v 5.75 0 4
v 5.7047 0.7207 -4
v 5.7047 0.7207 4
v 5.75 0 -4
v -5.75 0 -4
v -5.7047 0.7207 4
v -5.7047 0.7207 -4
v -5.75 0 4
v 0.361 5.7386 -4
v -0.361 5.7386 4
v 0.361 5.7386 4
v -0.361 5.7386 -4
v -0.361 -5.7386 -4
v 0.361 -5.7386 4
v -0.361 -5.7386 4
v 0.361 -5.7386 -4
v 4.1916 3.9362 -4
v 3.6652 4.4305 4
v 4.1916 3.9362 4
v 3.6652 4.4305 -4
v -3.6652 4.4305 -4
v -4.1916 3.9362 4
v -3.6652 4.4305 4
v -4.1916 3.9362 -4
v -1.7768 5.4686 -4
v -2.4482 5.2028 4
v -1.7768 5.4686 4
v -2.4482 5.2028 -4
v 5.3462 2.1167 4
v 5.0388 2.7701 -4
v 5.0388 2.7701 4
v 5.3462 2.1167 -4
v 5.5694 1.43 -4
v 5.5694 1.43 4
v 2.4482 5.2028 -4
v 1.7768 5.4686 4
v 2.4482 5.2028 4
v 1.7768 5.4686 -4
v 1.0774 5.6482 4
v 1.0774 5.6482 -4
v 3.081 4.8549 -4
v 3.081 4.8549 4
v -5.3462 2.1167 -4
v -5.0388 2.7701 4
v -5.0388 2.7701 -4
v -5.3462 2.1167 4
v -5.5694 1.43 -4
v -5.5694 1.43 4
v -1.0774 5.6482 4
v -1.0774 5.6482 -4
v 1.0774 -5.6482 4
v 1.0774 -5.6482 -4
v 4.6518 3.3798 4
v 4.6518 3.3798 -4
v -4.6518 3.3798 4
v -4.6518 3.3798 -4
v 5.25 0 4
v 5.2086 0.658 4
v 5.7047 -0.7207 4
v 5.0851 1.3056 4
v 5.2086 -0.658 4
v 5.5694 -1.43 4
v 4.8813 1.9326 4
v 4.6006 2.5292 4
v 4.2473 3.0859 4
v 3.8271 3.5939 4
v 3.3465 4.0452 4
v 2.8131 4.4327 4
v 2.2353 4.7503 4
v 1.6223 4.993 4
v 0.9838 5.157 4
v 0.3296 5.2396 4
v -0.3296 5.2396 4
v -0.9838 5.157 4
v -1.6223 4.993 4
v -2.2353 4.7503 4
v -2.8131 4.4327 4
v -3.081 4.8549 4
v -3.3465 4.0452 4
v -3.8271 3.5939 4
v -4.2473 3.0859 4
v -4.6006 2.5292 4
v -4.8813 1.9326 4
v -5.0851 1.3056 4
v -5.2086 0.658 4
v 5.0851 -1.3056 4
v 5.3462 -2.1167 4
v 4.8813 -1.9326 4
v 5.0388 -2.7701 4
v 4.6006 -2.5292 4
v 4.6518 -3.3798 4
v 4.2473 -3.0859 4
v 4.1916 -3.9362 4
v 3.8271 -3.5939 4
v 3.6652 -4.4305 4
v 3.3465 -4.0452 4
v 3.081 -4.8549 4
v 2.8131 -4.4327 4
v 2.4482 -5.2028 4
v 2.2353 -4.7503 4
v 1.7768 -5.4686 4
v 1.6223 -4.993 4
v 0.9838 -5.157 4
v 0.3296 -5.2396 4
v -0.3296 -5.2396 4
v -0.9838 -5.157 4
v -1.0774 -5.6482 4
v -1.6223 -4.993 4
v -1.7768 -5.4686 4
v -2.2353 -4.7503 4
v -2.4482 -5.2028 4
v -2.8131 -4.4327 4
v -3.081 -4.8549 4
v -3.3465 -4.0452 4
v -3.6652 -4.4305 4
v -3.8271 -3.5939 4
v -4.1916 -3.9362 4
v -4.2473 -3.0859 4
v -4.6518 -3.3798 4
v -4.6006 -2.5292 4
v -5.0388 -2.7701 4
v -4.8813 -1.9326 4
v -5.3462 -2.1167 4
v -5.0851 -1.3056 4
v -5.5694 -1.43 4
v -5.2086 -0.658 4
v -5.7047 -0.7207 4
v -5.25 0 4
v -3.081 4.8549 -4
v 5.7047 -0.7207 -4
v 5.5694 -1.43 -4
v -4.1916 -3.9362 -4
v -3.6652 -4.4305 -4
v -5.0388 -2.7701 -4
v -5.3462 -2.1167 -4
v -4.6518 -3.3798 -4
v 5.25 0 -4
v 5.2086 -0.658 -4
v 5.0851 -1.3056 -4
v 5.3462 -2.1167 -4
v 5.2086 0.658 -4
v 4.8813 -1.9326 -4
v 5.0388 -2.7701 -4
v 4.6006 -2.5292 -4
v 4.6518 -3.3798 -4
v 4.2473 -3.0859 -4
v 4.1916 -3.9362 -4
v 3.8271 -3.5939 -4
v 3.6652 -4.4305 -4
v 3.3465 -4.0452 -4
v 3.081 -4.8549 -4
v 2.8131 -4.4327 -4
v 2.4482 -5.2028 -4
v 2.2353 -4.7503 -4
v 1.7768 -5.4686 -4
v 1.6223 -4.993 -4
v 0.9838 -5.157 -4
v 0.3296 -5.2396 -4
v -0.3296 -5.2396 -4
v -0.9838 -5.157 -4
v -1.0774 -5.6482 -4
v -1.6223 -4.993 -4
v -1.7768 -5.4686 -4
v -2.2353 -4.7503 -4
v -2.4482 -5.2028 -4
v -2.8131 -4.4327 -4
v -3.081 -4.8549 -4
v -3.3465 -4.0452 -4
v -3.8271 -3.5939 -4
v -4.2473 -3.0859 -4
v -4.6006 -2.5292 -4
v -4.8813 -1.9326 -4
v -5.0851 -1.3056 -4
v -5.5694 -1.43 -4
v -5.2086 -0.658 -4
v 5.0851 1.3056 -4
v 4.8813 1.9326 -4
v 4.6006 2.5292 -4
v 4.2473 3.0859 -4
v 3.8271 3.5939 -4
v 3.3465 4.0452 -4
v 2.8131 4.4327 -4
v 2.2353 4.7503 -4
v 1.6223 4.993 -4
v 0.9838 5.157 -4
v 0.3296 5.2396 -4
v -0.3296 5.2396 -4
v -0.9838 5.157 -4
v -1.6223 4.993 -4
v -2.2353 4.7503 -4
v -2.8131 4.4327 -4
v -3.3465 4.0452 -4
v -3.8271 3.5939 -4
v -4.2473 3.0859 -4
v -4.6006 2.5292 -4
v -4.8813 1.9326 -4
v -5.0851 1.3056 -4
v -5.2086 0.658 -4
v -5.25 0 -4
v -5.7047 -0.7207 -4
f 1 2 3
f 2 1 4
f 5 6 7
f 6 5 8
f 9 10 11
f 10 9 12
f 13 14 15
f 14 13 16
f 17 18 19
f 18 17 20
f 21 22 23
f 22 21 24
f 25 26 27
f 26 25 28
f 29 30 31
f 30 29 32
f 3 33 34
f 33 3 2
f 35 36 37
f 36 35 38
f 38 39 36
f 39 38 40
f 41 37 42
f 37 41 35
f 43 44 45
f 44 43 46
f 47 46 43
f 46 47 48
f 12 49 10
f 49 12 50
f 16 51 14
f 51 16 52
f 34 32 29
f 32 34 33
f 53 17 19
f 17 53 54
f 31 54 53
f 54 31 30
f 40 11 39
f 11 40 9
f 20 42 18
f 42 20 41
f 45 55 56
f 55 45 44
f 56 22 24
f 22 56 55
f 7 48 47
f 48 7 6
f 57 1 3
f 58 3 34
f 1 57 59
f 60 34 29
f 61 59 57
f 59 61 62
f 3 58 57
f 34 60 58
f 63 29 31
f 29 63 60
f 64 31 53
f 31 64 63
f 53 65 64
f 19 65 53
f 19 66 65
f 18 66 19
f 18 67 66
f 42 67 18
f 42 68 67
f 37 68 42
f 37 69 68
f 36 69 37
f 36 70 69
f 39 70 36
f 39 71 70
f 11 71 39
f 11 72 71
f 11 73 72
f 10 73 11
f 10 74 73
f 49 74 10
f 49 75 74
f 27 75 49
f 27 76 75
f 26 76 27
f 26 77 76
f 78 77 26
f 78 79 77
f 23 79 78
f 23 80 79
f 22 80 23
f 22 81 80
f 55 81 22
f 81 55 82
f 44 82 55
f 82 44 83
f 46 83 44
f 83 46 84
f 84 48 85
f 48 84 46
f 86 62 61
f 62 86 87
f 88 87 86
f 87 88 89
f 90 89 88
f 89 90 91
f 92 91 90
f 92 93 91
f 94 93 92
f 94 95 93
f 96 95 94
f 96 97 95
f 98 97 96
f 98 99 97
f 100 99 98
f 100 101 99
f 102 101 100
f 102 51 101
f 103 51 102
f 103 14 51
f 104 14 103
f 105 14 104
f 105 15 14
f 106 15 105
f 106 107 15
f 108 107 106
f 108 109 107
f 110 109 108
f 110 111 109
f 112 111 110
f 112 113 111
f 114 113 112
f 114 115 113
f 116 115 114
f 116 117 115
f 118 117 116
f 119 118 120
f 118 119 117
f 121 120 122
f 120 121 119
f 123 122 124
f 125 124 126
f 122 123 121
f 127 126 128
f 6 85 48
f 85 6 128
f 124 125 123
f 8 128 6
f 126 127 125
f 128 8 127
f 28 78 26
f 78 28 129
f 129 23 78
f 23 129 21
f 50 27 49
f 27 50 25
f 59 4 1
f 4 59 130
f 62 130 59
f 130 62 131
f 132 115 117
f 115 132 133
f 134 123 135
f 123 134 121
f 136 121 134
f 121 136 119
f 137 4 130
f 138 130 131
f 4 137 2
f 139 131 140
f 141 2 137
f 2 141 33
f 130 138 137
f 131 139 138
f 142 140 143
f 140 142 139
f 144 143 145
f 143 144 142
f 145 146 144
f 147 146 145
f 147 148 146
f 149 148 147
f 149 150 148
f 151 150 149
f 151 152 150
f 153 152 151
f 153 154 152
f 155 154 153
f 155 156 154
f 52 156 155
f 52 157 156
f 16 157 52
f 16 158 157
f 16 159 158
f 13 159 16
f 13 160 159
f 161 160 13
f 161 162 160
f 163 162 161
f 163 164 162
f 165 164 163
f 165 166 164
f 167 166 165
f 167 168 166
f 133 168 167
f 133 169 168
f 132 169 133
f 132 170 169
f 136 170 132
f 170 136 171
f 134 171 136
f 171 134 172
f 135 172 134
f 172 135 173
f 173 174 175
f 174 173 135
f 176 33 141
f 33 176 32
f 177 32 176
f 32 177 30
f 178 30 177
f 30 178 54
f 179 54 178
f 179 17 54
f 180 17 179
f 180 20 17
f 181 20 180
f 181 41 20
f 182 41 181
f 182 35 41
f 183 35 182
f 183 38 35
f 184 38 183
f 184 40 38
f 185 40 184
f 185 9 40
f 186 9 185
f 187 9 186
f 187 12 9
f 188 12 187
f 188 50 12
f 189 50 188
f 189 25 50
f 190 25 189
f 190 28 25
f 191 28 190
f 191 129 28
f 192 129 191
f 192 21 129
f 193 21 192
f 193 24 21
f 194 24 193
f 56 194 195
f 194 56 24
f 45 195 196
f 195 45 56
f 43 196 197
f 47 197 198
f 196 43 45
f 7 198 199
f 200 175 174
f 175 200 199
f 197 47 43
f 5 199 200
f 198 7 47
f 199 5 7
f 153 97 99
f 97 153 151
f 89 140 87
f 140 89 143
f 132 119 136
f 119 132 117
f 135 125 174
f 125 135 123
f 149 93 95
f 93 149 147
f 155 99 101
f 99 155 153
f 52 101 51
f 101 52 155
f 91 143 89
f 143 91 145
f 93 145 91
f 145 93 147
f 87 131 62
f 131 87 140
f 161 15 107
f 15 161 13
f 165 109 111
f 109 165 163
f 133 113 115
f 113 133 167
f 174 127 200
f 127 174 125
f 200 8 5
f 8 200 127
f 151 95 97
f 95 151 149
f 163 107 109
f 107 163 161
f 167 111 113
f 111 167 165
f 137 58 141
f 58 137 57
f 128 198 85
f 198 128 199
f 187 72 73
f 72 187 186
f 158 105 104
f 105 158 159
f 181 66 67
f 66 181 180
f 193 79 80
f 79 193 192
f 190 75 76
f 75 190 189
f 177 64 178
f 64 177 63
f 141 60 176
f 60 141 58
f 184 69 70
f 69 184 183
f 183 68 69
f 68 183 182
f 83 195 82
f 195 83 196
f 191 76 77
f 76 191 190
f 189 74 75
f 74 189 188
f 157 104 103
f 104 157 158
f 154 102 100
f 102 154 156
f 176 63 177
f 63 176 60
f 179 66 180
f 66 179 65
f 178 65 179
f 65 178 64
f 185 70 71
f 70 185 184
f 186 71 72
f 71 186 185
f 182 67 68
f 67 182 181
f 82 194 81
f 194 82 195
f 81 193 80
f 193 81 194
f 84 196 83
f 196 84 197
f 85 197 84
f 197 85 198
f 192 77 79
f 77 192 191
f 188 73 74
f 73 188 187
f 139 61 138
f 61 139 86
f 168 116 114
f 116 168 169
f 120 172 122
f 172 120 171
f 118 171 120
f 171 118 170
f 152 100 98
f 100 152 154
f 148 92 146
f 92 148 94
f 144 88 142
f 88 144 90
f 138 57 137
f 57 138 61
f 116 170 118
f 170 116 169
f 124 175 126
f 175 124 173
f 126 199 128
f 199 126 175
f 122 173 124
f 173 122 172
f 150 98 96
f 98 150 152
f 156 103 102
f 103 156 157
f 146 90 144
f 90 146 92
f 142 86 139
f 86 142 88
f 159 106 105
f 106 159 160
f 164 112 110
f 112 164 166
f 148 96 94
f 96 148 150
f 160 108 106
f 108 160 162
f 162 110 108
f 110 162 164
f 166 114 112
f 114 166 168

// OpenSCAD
$fn = 50;


difference() {
	union() {
		translate(v = [0, 0, -4.0000000000]) {
			cylinder(h = 8, r = 5.7500000000);
		}
	}
	union() {
		translate(v = [0, 0, -100.0000000000]) {
			cylinder(h = 200, r = 5.2500000000);
		}
	}
}
